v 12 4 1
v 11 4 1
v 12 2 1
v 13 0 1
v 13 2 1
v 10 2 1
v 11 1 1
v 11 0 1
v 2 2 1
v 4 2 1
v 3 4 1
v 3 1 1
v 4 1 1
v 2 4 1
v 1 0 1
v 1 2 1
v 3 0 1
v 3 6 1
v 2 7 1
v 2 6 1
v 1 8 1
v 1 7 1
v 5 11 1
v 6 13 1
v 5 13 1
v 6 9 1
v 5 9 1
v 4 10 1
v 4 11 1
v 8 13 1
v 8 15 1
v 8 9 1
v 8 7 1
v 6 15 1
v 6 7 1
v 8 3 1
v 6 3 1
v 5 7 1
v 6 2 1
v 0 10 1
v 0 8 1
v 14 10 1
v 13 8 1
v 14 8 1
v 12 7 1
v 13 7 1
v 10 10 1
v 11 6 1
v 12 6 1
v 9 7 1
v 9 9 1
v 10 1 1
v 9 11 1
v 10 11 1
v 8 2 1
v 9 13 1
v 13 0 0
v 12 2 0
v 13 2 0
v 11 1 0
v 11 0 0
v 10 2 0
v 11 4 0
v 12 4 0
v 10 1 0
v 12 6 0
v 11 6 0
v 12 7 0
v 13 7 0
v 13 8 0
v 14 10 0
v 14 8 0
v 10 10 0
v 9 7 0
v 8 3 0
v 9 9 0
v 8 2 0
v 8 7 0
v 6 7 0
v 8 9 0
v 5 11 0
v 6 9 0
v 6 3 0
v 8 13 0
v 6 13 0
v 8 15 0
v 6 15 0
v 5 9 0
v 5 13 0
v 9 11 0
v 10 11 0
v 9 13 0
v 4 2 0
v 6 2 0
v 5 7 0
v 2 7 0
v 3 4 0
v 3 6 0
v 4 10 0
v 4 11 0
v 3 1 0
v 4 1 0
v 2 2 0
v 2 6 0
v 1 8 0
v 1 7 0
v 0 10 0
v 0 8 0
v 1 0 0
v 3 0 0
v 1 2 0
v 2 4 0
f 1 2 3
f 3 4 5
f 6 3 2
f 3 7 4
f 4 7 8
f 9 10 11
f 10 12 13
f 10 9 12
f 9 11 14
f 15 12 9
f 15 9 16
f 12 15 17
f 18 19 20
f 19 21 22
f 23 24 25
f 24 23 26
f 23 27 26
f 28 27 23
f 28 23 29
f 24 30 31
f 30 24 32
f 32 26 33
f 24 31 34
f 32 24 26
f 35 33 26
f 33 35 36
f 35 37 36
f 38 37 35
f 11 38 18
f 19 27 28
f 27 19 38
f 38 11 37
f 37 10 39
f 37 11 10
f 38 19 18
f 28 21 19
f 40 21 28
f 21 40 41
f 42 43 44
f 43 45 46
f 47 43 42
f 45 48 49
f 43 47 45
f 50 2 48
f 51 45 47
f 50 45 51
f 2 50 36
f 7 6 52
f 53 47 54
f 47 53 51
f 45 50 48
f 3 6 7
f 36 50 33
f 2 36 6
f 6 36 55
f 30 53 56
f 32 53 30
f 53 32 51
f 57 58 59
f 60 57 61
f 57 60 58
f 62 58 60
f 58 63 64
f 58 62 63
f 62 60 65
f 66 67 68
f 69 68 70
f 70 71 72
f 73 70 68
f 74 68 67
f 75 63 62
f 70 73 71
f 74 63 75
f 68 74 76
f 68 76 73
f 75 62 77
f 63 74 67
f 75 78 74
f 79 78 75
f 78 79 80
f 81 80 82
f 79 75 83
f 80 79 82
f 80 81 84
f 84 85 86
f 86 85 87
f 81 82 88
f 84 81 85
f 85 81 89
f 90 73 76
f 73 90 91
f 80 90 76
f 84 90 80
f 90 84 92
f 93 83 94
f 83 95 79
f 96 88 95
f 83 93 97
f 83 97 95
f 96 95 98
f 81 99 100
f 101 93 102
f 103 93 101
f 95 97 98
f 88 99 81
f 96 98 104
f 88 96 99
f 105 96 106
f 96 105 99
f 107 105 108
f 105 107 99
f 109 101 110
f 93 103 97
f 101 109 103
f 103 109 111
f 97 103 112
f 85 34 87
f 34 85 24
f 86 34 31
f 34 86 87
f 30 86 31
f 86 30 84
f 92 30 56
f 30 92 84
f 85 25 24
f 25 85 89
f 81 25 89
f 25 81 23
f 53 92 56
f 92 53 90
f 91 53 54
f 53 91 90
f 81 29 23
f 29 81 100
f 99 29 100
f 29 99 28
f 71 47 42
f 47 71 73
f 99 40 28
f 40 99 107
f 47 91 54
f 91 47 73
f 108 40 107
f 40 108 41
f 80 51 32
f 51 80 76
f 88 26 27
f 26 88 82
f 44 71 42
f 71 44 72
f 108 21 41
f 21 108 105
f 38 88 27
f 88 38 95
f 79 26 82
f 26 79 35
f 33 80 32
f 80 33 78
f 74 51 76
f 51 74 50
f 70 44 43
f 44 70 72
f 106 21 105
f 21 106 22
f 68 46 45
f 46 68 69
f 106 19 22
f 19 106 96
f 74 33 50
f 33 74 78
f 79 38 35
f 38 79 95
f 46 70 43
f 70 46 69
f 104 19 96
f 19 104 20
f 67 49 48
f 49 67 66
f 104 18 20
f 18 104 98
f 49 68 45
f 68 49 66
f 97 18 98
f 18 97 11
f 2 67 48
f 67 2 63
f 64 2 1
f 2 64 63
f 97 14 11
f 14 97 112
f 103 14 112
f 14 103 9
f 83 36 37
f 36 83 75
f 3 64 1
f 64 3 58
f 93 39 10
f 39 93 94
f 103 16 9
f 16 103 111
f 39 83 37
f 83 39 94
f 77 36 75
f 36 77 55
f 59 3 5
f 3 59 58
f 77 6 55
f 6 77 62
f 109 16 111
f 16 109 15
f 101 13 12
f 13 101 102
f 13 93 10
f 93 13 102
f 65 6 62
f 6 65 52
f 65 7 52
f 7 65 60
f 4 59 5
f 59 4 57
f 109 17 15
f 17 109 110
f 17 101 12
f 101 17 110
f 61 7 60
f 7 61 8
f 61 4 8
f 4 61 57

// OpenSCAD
/*
 * 3D Pixel Art - Star 2
 * Copyright (c) 2019 Anar Software LLC. < http://anars.com >
 *
 * This program is free software: you can redistribute it and/or modify it under
 * the terms of the GNU General Public License as published by the Free Software
 * Foundation, either version 3 of the License, or (at your option) any later
 * version.
 *
 * This program is distributed in the hope that it will be useful, but WITHOUT
 * ANY WARRANTY; without even the implied warranty of MERCHANTABILITY or FITNESS
 * FOR A PARTICULAR PURPOSE. See the GNU General Public License for more details.
 *
 * You should have received a copy of the GNU General Public License along with
 * this program. If not, see < http://www.gnu.org/licenses/ >
 *
 */

/* [Global] */

/* [Pixel Settings] */

// Pixel Length (X)
pixel_length = 1;

// Pixel Width (Y)
pixel_width = 1;

// Pixel Height (Z)
pixel_height = 1;

/* [Hidden] */

data=[[
     "      XX",
     "      XX",
     "     XXXX",
     "     XXXX",
     "    XXXXXX",
     "XXXXXXXXXXXXXX",
     "XXXXX XX XXXXX",
     " XXXX XX XXXX",
     "  XXXXXXXXXX",
     "   XXXXXXXX",
     "   XXXXXXXX",
     "  XXXXXXXXXX",
     "  XXXX  XXXX",
     " XXX      XXX",
     " XX        XX"]];

for (z = [0 : len(data) - 1])
    for (y = [0 : len(data[z]) - 1])
        if (len(data[z][y]) > 0)
            for (x = [0 : len(data[z][y]) - 1])
                if (data[z][y][x] == "X")
                    translate([x * pixel_length, (len(data[z]) - 1 - y) * pixel_width, z * pixel_height])
                        cube([pixel_length, pixel_width, pixel_height]);
